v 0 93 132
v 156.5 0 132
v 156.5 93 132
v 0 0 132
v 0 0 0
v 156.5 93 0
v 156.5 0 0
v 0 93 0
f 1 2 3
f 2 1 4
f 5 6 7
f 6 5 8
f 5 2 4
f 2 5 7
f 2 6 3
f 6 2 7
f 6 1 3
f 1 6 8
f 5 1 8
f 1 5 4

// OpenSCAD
// Opentrons Flex 96 Tip Rack Adapter
// loadName: opentrons_flex_96_tiprack_adapter
// Auto-generated by labware_to_stl.py from Opentrons V2 labware definition

$fn = 32;

difference() {
    // ── Labware body ──────────────────────────────────────────────
    cube([156.5000, 93.0000, 132.0000]);

    // ── Well cutouts ──────────────────────────────────────────────
}
